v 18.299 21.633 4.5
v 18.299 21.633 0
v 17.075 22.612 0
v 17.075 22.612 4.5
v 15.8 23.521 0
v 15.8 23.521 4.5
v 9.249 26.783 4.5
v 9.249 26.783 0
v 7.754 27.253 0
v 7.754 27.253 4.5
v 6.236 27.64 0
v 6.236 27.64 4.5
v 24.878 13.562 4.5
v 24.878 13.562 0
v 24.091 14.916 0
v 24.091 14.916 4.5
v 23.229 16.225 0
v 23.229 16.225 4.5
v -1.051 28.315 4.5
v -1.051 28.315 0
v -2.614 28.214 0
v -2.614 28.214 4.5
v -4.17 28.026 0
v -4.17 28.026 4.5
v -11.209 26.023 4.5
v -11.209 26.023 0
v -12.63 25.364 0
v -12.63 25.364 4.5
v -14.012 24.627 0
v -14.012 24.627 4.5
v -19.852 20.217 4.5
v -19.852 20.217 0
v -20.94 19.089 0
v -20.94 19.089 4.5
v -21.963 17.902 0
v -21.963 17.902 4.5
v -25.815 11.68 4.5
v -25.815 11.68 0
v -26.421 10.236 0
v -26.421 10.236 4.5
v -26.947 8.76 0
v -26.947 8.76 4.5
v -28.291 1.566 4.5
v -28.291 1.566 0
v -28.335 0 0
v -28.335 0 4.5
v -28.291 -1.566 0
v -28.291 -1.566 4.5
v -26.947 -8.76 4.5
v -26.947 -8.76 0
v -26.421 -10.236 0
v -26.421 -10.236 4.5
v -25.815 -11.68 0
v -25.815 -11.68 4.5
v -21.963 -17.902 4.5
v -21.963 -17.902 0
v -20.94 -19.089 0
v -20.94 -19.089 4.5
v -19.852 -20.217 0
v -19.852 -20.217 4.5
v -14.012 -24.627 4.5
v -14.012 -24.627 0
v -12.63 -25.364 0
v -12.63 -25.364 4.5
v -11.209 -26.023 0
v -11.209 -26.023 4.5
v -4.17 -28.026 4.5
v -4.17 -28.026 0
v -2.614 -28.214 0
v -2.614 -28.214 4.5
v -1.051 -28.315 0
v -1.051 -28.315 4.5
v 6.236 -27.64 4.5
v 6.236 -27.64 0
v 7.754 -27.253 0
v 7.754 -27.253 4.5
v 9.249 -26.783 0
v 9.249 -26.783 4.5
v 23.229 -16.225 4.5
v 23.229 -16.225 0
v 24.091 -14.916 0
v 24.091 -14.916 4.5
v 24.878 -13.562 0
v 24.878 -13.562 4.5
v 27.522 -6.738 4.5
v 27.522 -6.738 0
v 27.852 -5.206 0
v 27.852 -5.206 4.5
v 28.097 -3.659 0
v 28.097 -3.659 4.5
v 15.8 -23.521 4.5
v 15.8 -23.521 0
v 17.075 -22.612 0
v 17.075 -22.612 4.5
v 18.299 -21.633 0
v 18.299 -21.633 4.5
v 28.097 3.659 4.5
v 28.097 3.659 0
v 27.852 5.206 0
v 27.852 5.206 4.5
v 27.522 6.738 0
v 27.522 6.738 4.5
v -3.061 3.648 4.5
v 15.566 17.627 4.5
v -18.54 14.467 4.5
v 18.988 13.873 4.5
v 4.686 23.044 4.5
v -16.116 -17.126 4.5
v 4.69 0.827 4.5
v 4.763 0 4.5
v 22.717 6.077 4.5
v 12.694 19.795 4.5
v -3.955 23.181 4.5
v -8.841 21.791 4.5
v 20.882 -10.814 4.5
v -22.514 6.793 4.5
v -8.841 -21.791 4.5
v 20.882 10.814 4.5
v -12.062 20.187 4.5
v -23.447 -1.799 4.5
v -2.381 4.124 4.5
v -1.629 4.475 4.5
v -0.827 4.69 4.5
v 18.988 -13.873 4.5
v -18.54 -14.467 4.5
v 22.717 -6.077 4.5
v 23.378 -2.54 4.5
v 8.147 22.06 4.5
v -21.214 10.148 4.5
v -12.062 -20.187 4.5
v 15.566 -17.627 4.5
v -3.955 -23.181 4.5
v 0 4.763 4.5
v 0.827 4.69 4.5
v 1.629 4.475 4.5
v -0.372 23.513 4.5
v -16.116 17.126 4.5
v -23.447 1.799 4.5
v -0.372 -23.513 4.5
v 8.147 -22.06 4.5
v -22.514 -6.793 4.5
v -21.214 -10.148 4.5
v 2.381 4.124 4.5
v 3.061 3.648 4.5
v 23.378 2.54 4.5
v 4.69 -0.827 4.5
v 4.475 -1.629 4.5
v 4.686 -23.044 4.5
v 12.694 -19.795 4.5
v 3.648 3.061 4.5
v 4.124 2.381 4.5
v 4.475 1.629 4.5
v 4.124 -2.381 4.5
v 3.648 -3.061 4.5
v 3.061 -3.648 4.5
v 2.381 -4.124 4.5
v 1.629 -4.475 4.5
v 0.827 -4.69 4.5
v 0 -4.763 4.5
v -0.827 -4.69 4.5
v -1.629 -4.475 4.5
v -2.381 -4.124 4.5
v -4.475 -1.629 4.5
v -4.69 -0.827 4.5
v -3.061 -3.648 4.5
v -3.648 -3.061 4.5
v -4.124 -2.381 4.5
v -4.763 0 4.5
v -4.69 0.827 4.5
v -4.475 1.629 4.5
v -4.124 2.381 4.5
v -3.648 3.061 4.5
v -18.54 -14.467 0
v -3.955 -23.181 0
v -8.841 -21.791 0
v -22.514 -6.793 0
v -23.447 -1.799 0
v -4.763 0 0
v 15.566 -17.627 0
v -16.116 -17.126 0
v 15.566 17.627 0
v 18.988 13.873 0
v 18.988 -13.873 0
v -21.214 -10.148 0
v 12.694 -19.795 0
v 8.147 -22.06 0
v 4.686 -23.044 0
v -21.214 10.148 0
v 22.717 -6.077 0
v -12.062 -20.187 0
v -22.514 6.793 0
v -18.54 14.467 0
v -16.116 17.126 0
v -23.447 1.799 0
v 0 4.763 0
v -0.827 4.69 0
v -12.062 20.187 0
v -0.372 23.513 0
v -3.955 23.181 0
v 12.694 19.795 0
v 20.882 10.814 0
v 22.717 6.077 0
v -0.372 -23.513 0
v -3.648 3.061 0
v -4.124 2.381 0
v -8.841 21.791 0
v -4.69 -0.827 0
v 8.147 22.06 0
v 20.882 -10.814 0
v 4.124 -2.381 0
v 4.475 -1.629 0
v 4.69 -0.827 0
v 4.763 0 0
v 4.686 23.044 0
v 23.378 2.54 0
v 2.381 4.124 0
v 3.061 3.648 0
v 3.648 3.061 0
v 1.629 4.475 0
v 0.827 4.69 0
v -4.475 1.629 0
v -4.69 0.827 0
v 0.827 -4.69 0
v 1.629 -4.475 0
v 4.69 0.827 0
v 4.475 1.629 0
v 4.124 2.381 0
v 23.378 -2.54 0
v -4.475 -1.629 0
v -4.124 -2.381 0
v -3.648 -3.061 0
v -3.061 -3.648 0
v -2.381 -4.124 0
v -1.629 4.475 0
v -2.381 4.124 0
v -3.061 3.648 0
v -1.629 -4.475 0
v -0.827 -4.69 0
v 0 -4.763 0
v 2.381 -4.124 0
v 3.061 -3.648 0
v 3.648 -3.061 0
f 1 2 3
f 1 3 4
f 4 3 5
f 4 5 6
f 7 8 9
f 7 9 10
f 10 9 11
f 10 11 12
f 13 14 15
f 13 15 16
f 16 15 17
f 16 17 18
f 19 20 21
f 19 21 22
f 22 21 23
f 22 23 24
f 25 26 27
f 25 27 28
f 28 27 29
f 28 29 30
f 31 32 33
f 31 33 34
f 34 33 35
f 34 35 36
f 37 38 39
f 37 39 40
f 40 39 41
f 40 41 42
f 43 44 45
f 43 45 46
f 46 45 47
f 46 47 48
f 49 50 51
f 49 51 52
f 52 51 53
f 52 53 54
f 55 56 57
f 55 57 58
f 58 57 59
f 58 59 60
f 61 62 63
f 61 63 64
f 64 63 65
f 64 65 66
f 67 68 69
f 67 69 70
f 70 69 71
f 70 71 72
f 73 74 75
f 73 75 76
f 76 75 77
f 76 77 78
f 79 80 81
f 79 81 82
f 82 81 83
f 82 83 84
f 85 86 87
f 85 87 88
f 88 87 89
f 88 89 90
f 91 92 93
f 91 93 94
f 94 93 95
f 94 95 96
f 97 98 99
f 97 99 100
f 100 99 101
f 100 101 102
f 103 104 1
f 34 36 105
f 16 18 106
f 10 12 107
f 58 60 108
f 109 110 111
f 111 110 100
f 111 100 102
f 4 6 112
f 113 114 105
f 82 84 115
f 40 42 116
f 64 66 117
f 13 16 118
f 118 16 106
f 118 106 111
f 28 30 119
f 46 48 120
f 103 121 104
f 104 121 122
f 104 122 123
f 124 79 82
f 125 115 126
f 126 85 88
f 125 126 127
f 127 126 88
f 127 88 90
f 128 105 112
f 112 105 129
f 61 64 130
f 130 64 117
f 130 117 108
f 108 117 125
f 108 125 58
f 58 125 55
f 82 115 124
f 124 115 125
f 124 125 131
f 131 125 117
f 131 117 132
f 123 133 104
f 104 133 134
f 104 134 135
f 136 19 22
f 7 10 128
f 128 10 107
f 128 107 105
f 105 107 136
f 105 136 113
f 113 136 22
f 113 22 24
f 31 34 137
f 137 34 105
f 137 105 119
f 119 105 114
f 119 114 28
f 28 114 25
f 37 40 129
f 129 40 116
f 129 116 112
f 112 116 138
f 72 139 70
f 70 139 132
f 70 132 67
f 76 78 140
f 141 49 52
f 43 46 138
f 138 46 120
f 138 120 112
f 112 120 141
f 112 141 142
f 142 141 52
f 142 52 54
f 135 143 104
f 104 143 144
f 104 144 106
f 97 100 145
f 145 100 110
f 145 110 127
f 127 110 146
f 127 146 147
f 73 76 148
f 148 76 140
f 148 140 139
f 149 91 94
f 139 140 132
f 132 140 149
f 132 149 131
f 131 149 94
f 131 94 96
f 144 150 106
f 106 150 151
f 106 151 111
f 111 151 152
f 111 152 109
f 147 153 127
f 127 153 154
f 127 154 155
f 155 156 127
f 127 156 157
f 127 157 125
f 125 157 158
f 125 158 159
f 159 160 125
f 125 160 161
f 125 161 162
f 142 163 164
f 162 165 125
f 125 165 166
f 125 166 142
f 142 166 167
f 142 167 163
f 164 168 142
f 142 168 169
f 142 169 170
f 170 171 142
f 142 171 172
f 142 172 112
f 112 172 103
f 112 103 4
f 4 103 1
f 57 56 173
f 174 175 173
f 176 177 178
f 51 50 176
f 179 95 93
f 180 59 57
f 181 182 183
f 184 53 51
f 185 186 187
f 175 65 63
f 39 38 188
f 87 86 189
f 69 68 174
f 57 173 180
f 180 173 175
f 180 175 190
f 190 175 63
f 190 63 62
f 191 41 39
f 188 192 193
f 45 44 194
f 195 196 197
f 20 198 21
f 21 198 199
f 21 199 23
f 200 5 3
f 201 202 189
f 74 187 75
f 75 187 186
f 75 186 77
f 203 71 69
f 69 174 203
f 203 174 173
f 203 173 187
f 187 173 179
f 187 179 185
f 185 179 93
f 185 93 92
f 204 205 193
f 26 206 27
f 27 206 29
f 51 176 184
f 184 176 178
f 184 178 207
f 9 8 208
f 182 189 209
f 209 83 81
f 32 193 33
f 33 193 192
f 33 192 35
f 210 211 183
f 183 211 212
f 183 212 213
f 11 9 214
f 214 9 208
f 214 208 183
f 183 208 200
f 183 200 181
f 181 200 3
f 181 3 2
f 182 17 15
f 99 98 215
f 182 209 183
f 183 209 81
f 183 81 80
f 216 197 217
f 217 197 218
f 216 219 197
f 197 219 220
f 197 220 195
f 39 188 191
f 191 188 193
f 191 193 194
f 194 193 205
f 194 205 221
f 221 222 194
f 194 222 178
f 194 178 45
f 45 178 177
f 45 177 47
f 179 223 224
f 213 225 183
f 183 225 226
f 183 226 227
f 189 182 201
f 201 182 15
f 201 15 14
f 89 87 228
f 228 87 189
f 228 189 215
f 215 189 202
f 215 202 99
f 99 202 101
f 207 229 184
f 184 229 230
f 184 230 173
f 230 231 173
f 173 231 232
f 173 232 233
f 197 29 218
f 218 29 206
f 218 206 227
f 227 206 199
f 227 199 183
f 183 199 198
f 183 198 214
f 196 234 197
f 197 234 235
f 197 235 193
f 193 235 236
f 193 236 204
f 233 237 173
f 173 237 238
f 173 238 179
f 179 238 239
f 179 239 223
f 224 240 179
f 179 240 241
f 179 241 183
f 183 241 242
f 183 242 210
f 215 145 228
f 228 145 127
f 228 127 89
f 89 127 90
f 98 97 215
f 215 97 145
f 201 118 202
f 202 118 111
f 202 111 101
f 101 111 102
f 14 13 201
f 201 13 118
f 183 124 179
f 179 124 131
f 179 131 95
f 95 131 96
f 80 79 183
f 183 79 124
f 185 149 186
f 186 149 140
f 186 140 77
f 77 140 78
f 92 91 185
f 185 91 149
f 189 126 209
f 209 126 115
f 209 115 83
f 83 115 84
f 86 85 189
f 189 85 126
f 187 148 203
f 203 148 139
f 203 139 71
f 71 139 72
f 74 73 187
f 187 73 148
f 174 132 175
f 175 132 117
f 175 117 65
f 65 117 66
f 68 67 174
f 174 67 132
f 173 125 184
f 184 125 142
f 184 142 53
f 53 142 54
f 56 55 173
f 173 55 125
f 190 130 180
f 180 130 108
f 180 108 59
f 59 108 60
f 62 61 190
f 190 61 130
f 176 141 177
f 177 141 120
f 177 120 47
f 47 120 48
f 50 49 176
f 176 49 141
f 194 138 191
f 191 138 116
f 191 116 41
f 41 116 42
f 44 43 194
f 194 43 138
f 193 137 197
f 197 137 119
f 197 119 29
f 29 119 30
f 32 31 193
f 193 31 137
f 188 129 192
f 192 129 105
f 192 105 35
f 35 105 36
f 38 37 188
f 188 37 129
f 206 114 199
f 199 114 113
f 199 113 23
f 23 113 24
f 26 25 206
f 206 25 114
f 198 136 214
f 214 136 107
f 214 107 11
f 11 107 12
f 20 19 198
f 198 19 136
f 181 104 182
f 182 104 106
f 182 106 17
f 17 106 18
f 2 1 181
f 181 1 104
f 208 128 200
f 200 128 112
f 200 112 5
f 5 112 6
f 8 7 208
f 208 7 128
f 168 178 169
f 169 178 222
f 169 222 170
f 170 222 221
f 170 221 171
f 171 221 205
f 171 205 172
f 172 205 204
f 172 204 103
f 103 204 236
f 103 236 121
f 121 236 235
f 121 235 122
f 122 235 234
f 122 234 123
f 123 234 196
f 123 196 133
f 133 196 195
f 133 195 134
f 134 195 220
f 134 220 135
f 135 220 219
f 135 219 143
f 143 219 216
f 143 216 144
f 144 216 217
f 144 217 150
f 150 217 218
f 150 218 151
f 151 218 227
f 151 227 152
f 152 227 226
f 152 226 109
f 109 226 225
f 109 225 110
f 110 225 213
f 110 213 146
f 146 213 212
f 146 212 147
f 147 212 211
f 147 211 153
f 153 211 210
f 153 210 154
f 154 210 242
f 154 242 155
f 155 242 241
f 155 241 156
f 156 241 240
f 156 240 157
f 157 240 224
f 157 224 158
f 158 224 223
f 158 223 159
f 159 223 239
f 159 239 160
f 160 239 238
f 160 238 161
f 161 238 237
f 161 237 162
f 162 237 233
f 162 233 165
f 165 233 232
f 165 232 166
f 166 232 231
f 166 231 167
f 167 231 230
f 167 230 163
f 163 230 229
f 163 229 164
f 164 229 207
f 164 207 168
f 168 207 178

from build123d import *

# Parameters (mm, degrees)
SKETCH1_R               = 28.334624745
BOSS_EXTRUDE1_DEPTH     = 4.5
CUT_EXTRUDE2_DEPTH      = 5.5
CIRPATTERN1_COUNT       = 17
CUT_EXTRUDE4_DEPTH      = 6.5
CUT_EXTRUDE4_DEPTH_BACK = 6.5
SKETCH3_R               = 4.7625


with BuildPart() as part:
    # Sketch1 → Boss-Extrude1 (new body)
    with BuildSketch(Plane.XY):
        Circle(SKETCH1_R)
    extrude(amount=BOSS_EXTRUDE1_DEPTH)

    # Sketch2 → Cut-Extrude2 (cut, symmetric)
    with BuildSketch(Plane.XY):
        Polygon((23.37843536, -2.54), (29.534624745, -4), (29.534624745, 4), (23.37843536, 2.54), align=None)
    cut_extrude2 = extrude(amount=CUT_EXTRUDE2_DEPTH, both=True, mode=Mode.SUBTRACT)

    # CirPattern1: Cut-Extrude2 ×17 about axis
    cirpattern1_axis = Axis((0, 0, -0.225), (0, 0, 1))
    for i in range(1, CIRPATTERN1_COUNT):
        add(cut_extrude2.rotate(cirpattern1_axis, i * 360 / CIRPATTERN1_COUNT), mode=Mode.SUBTRACT)

    # Sketch3 → Cut-Extrude4 (cut, two sides: drawn at the far end of the back side and taken through both)
    with BuildSketch(Plane.XY.offset(-CUT_EXTRUDE4_DEPTH_BACK)):
        Circle(SKETCH3_R)
    extrude(amount=CUT_EXTRUDE4_DEPTH + CUT_EXTRUDE4_DEPTH_BACK, mode=Mode.SUBTRACT)


solid = part.part
